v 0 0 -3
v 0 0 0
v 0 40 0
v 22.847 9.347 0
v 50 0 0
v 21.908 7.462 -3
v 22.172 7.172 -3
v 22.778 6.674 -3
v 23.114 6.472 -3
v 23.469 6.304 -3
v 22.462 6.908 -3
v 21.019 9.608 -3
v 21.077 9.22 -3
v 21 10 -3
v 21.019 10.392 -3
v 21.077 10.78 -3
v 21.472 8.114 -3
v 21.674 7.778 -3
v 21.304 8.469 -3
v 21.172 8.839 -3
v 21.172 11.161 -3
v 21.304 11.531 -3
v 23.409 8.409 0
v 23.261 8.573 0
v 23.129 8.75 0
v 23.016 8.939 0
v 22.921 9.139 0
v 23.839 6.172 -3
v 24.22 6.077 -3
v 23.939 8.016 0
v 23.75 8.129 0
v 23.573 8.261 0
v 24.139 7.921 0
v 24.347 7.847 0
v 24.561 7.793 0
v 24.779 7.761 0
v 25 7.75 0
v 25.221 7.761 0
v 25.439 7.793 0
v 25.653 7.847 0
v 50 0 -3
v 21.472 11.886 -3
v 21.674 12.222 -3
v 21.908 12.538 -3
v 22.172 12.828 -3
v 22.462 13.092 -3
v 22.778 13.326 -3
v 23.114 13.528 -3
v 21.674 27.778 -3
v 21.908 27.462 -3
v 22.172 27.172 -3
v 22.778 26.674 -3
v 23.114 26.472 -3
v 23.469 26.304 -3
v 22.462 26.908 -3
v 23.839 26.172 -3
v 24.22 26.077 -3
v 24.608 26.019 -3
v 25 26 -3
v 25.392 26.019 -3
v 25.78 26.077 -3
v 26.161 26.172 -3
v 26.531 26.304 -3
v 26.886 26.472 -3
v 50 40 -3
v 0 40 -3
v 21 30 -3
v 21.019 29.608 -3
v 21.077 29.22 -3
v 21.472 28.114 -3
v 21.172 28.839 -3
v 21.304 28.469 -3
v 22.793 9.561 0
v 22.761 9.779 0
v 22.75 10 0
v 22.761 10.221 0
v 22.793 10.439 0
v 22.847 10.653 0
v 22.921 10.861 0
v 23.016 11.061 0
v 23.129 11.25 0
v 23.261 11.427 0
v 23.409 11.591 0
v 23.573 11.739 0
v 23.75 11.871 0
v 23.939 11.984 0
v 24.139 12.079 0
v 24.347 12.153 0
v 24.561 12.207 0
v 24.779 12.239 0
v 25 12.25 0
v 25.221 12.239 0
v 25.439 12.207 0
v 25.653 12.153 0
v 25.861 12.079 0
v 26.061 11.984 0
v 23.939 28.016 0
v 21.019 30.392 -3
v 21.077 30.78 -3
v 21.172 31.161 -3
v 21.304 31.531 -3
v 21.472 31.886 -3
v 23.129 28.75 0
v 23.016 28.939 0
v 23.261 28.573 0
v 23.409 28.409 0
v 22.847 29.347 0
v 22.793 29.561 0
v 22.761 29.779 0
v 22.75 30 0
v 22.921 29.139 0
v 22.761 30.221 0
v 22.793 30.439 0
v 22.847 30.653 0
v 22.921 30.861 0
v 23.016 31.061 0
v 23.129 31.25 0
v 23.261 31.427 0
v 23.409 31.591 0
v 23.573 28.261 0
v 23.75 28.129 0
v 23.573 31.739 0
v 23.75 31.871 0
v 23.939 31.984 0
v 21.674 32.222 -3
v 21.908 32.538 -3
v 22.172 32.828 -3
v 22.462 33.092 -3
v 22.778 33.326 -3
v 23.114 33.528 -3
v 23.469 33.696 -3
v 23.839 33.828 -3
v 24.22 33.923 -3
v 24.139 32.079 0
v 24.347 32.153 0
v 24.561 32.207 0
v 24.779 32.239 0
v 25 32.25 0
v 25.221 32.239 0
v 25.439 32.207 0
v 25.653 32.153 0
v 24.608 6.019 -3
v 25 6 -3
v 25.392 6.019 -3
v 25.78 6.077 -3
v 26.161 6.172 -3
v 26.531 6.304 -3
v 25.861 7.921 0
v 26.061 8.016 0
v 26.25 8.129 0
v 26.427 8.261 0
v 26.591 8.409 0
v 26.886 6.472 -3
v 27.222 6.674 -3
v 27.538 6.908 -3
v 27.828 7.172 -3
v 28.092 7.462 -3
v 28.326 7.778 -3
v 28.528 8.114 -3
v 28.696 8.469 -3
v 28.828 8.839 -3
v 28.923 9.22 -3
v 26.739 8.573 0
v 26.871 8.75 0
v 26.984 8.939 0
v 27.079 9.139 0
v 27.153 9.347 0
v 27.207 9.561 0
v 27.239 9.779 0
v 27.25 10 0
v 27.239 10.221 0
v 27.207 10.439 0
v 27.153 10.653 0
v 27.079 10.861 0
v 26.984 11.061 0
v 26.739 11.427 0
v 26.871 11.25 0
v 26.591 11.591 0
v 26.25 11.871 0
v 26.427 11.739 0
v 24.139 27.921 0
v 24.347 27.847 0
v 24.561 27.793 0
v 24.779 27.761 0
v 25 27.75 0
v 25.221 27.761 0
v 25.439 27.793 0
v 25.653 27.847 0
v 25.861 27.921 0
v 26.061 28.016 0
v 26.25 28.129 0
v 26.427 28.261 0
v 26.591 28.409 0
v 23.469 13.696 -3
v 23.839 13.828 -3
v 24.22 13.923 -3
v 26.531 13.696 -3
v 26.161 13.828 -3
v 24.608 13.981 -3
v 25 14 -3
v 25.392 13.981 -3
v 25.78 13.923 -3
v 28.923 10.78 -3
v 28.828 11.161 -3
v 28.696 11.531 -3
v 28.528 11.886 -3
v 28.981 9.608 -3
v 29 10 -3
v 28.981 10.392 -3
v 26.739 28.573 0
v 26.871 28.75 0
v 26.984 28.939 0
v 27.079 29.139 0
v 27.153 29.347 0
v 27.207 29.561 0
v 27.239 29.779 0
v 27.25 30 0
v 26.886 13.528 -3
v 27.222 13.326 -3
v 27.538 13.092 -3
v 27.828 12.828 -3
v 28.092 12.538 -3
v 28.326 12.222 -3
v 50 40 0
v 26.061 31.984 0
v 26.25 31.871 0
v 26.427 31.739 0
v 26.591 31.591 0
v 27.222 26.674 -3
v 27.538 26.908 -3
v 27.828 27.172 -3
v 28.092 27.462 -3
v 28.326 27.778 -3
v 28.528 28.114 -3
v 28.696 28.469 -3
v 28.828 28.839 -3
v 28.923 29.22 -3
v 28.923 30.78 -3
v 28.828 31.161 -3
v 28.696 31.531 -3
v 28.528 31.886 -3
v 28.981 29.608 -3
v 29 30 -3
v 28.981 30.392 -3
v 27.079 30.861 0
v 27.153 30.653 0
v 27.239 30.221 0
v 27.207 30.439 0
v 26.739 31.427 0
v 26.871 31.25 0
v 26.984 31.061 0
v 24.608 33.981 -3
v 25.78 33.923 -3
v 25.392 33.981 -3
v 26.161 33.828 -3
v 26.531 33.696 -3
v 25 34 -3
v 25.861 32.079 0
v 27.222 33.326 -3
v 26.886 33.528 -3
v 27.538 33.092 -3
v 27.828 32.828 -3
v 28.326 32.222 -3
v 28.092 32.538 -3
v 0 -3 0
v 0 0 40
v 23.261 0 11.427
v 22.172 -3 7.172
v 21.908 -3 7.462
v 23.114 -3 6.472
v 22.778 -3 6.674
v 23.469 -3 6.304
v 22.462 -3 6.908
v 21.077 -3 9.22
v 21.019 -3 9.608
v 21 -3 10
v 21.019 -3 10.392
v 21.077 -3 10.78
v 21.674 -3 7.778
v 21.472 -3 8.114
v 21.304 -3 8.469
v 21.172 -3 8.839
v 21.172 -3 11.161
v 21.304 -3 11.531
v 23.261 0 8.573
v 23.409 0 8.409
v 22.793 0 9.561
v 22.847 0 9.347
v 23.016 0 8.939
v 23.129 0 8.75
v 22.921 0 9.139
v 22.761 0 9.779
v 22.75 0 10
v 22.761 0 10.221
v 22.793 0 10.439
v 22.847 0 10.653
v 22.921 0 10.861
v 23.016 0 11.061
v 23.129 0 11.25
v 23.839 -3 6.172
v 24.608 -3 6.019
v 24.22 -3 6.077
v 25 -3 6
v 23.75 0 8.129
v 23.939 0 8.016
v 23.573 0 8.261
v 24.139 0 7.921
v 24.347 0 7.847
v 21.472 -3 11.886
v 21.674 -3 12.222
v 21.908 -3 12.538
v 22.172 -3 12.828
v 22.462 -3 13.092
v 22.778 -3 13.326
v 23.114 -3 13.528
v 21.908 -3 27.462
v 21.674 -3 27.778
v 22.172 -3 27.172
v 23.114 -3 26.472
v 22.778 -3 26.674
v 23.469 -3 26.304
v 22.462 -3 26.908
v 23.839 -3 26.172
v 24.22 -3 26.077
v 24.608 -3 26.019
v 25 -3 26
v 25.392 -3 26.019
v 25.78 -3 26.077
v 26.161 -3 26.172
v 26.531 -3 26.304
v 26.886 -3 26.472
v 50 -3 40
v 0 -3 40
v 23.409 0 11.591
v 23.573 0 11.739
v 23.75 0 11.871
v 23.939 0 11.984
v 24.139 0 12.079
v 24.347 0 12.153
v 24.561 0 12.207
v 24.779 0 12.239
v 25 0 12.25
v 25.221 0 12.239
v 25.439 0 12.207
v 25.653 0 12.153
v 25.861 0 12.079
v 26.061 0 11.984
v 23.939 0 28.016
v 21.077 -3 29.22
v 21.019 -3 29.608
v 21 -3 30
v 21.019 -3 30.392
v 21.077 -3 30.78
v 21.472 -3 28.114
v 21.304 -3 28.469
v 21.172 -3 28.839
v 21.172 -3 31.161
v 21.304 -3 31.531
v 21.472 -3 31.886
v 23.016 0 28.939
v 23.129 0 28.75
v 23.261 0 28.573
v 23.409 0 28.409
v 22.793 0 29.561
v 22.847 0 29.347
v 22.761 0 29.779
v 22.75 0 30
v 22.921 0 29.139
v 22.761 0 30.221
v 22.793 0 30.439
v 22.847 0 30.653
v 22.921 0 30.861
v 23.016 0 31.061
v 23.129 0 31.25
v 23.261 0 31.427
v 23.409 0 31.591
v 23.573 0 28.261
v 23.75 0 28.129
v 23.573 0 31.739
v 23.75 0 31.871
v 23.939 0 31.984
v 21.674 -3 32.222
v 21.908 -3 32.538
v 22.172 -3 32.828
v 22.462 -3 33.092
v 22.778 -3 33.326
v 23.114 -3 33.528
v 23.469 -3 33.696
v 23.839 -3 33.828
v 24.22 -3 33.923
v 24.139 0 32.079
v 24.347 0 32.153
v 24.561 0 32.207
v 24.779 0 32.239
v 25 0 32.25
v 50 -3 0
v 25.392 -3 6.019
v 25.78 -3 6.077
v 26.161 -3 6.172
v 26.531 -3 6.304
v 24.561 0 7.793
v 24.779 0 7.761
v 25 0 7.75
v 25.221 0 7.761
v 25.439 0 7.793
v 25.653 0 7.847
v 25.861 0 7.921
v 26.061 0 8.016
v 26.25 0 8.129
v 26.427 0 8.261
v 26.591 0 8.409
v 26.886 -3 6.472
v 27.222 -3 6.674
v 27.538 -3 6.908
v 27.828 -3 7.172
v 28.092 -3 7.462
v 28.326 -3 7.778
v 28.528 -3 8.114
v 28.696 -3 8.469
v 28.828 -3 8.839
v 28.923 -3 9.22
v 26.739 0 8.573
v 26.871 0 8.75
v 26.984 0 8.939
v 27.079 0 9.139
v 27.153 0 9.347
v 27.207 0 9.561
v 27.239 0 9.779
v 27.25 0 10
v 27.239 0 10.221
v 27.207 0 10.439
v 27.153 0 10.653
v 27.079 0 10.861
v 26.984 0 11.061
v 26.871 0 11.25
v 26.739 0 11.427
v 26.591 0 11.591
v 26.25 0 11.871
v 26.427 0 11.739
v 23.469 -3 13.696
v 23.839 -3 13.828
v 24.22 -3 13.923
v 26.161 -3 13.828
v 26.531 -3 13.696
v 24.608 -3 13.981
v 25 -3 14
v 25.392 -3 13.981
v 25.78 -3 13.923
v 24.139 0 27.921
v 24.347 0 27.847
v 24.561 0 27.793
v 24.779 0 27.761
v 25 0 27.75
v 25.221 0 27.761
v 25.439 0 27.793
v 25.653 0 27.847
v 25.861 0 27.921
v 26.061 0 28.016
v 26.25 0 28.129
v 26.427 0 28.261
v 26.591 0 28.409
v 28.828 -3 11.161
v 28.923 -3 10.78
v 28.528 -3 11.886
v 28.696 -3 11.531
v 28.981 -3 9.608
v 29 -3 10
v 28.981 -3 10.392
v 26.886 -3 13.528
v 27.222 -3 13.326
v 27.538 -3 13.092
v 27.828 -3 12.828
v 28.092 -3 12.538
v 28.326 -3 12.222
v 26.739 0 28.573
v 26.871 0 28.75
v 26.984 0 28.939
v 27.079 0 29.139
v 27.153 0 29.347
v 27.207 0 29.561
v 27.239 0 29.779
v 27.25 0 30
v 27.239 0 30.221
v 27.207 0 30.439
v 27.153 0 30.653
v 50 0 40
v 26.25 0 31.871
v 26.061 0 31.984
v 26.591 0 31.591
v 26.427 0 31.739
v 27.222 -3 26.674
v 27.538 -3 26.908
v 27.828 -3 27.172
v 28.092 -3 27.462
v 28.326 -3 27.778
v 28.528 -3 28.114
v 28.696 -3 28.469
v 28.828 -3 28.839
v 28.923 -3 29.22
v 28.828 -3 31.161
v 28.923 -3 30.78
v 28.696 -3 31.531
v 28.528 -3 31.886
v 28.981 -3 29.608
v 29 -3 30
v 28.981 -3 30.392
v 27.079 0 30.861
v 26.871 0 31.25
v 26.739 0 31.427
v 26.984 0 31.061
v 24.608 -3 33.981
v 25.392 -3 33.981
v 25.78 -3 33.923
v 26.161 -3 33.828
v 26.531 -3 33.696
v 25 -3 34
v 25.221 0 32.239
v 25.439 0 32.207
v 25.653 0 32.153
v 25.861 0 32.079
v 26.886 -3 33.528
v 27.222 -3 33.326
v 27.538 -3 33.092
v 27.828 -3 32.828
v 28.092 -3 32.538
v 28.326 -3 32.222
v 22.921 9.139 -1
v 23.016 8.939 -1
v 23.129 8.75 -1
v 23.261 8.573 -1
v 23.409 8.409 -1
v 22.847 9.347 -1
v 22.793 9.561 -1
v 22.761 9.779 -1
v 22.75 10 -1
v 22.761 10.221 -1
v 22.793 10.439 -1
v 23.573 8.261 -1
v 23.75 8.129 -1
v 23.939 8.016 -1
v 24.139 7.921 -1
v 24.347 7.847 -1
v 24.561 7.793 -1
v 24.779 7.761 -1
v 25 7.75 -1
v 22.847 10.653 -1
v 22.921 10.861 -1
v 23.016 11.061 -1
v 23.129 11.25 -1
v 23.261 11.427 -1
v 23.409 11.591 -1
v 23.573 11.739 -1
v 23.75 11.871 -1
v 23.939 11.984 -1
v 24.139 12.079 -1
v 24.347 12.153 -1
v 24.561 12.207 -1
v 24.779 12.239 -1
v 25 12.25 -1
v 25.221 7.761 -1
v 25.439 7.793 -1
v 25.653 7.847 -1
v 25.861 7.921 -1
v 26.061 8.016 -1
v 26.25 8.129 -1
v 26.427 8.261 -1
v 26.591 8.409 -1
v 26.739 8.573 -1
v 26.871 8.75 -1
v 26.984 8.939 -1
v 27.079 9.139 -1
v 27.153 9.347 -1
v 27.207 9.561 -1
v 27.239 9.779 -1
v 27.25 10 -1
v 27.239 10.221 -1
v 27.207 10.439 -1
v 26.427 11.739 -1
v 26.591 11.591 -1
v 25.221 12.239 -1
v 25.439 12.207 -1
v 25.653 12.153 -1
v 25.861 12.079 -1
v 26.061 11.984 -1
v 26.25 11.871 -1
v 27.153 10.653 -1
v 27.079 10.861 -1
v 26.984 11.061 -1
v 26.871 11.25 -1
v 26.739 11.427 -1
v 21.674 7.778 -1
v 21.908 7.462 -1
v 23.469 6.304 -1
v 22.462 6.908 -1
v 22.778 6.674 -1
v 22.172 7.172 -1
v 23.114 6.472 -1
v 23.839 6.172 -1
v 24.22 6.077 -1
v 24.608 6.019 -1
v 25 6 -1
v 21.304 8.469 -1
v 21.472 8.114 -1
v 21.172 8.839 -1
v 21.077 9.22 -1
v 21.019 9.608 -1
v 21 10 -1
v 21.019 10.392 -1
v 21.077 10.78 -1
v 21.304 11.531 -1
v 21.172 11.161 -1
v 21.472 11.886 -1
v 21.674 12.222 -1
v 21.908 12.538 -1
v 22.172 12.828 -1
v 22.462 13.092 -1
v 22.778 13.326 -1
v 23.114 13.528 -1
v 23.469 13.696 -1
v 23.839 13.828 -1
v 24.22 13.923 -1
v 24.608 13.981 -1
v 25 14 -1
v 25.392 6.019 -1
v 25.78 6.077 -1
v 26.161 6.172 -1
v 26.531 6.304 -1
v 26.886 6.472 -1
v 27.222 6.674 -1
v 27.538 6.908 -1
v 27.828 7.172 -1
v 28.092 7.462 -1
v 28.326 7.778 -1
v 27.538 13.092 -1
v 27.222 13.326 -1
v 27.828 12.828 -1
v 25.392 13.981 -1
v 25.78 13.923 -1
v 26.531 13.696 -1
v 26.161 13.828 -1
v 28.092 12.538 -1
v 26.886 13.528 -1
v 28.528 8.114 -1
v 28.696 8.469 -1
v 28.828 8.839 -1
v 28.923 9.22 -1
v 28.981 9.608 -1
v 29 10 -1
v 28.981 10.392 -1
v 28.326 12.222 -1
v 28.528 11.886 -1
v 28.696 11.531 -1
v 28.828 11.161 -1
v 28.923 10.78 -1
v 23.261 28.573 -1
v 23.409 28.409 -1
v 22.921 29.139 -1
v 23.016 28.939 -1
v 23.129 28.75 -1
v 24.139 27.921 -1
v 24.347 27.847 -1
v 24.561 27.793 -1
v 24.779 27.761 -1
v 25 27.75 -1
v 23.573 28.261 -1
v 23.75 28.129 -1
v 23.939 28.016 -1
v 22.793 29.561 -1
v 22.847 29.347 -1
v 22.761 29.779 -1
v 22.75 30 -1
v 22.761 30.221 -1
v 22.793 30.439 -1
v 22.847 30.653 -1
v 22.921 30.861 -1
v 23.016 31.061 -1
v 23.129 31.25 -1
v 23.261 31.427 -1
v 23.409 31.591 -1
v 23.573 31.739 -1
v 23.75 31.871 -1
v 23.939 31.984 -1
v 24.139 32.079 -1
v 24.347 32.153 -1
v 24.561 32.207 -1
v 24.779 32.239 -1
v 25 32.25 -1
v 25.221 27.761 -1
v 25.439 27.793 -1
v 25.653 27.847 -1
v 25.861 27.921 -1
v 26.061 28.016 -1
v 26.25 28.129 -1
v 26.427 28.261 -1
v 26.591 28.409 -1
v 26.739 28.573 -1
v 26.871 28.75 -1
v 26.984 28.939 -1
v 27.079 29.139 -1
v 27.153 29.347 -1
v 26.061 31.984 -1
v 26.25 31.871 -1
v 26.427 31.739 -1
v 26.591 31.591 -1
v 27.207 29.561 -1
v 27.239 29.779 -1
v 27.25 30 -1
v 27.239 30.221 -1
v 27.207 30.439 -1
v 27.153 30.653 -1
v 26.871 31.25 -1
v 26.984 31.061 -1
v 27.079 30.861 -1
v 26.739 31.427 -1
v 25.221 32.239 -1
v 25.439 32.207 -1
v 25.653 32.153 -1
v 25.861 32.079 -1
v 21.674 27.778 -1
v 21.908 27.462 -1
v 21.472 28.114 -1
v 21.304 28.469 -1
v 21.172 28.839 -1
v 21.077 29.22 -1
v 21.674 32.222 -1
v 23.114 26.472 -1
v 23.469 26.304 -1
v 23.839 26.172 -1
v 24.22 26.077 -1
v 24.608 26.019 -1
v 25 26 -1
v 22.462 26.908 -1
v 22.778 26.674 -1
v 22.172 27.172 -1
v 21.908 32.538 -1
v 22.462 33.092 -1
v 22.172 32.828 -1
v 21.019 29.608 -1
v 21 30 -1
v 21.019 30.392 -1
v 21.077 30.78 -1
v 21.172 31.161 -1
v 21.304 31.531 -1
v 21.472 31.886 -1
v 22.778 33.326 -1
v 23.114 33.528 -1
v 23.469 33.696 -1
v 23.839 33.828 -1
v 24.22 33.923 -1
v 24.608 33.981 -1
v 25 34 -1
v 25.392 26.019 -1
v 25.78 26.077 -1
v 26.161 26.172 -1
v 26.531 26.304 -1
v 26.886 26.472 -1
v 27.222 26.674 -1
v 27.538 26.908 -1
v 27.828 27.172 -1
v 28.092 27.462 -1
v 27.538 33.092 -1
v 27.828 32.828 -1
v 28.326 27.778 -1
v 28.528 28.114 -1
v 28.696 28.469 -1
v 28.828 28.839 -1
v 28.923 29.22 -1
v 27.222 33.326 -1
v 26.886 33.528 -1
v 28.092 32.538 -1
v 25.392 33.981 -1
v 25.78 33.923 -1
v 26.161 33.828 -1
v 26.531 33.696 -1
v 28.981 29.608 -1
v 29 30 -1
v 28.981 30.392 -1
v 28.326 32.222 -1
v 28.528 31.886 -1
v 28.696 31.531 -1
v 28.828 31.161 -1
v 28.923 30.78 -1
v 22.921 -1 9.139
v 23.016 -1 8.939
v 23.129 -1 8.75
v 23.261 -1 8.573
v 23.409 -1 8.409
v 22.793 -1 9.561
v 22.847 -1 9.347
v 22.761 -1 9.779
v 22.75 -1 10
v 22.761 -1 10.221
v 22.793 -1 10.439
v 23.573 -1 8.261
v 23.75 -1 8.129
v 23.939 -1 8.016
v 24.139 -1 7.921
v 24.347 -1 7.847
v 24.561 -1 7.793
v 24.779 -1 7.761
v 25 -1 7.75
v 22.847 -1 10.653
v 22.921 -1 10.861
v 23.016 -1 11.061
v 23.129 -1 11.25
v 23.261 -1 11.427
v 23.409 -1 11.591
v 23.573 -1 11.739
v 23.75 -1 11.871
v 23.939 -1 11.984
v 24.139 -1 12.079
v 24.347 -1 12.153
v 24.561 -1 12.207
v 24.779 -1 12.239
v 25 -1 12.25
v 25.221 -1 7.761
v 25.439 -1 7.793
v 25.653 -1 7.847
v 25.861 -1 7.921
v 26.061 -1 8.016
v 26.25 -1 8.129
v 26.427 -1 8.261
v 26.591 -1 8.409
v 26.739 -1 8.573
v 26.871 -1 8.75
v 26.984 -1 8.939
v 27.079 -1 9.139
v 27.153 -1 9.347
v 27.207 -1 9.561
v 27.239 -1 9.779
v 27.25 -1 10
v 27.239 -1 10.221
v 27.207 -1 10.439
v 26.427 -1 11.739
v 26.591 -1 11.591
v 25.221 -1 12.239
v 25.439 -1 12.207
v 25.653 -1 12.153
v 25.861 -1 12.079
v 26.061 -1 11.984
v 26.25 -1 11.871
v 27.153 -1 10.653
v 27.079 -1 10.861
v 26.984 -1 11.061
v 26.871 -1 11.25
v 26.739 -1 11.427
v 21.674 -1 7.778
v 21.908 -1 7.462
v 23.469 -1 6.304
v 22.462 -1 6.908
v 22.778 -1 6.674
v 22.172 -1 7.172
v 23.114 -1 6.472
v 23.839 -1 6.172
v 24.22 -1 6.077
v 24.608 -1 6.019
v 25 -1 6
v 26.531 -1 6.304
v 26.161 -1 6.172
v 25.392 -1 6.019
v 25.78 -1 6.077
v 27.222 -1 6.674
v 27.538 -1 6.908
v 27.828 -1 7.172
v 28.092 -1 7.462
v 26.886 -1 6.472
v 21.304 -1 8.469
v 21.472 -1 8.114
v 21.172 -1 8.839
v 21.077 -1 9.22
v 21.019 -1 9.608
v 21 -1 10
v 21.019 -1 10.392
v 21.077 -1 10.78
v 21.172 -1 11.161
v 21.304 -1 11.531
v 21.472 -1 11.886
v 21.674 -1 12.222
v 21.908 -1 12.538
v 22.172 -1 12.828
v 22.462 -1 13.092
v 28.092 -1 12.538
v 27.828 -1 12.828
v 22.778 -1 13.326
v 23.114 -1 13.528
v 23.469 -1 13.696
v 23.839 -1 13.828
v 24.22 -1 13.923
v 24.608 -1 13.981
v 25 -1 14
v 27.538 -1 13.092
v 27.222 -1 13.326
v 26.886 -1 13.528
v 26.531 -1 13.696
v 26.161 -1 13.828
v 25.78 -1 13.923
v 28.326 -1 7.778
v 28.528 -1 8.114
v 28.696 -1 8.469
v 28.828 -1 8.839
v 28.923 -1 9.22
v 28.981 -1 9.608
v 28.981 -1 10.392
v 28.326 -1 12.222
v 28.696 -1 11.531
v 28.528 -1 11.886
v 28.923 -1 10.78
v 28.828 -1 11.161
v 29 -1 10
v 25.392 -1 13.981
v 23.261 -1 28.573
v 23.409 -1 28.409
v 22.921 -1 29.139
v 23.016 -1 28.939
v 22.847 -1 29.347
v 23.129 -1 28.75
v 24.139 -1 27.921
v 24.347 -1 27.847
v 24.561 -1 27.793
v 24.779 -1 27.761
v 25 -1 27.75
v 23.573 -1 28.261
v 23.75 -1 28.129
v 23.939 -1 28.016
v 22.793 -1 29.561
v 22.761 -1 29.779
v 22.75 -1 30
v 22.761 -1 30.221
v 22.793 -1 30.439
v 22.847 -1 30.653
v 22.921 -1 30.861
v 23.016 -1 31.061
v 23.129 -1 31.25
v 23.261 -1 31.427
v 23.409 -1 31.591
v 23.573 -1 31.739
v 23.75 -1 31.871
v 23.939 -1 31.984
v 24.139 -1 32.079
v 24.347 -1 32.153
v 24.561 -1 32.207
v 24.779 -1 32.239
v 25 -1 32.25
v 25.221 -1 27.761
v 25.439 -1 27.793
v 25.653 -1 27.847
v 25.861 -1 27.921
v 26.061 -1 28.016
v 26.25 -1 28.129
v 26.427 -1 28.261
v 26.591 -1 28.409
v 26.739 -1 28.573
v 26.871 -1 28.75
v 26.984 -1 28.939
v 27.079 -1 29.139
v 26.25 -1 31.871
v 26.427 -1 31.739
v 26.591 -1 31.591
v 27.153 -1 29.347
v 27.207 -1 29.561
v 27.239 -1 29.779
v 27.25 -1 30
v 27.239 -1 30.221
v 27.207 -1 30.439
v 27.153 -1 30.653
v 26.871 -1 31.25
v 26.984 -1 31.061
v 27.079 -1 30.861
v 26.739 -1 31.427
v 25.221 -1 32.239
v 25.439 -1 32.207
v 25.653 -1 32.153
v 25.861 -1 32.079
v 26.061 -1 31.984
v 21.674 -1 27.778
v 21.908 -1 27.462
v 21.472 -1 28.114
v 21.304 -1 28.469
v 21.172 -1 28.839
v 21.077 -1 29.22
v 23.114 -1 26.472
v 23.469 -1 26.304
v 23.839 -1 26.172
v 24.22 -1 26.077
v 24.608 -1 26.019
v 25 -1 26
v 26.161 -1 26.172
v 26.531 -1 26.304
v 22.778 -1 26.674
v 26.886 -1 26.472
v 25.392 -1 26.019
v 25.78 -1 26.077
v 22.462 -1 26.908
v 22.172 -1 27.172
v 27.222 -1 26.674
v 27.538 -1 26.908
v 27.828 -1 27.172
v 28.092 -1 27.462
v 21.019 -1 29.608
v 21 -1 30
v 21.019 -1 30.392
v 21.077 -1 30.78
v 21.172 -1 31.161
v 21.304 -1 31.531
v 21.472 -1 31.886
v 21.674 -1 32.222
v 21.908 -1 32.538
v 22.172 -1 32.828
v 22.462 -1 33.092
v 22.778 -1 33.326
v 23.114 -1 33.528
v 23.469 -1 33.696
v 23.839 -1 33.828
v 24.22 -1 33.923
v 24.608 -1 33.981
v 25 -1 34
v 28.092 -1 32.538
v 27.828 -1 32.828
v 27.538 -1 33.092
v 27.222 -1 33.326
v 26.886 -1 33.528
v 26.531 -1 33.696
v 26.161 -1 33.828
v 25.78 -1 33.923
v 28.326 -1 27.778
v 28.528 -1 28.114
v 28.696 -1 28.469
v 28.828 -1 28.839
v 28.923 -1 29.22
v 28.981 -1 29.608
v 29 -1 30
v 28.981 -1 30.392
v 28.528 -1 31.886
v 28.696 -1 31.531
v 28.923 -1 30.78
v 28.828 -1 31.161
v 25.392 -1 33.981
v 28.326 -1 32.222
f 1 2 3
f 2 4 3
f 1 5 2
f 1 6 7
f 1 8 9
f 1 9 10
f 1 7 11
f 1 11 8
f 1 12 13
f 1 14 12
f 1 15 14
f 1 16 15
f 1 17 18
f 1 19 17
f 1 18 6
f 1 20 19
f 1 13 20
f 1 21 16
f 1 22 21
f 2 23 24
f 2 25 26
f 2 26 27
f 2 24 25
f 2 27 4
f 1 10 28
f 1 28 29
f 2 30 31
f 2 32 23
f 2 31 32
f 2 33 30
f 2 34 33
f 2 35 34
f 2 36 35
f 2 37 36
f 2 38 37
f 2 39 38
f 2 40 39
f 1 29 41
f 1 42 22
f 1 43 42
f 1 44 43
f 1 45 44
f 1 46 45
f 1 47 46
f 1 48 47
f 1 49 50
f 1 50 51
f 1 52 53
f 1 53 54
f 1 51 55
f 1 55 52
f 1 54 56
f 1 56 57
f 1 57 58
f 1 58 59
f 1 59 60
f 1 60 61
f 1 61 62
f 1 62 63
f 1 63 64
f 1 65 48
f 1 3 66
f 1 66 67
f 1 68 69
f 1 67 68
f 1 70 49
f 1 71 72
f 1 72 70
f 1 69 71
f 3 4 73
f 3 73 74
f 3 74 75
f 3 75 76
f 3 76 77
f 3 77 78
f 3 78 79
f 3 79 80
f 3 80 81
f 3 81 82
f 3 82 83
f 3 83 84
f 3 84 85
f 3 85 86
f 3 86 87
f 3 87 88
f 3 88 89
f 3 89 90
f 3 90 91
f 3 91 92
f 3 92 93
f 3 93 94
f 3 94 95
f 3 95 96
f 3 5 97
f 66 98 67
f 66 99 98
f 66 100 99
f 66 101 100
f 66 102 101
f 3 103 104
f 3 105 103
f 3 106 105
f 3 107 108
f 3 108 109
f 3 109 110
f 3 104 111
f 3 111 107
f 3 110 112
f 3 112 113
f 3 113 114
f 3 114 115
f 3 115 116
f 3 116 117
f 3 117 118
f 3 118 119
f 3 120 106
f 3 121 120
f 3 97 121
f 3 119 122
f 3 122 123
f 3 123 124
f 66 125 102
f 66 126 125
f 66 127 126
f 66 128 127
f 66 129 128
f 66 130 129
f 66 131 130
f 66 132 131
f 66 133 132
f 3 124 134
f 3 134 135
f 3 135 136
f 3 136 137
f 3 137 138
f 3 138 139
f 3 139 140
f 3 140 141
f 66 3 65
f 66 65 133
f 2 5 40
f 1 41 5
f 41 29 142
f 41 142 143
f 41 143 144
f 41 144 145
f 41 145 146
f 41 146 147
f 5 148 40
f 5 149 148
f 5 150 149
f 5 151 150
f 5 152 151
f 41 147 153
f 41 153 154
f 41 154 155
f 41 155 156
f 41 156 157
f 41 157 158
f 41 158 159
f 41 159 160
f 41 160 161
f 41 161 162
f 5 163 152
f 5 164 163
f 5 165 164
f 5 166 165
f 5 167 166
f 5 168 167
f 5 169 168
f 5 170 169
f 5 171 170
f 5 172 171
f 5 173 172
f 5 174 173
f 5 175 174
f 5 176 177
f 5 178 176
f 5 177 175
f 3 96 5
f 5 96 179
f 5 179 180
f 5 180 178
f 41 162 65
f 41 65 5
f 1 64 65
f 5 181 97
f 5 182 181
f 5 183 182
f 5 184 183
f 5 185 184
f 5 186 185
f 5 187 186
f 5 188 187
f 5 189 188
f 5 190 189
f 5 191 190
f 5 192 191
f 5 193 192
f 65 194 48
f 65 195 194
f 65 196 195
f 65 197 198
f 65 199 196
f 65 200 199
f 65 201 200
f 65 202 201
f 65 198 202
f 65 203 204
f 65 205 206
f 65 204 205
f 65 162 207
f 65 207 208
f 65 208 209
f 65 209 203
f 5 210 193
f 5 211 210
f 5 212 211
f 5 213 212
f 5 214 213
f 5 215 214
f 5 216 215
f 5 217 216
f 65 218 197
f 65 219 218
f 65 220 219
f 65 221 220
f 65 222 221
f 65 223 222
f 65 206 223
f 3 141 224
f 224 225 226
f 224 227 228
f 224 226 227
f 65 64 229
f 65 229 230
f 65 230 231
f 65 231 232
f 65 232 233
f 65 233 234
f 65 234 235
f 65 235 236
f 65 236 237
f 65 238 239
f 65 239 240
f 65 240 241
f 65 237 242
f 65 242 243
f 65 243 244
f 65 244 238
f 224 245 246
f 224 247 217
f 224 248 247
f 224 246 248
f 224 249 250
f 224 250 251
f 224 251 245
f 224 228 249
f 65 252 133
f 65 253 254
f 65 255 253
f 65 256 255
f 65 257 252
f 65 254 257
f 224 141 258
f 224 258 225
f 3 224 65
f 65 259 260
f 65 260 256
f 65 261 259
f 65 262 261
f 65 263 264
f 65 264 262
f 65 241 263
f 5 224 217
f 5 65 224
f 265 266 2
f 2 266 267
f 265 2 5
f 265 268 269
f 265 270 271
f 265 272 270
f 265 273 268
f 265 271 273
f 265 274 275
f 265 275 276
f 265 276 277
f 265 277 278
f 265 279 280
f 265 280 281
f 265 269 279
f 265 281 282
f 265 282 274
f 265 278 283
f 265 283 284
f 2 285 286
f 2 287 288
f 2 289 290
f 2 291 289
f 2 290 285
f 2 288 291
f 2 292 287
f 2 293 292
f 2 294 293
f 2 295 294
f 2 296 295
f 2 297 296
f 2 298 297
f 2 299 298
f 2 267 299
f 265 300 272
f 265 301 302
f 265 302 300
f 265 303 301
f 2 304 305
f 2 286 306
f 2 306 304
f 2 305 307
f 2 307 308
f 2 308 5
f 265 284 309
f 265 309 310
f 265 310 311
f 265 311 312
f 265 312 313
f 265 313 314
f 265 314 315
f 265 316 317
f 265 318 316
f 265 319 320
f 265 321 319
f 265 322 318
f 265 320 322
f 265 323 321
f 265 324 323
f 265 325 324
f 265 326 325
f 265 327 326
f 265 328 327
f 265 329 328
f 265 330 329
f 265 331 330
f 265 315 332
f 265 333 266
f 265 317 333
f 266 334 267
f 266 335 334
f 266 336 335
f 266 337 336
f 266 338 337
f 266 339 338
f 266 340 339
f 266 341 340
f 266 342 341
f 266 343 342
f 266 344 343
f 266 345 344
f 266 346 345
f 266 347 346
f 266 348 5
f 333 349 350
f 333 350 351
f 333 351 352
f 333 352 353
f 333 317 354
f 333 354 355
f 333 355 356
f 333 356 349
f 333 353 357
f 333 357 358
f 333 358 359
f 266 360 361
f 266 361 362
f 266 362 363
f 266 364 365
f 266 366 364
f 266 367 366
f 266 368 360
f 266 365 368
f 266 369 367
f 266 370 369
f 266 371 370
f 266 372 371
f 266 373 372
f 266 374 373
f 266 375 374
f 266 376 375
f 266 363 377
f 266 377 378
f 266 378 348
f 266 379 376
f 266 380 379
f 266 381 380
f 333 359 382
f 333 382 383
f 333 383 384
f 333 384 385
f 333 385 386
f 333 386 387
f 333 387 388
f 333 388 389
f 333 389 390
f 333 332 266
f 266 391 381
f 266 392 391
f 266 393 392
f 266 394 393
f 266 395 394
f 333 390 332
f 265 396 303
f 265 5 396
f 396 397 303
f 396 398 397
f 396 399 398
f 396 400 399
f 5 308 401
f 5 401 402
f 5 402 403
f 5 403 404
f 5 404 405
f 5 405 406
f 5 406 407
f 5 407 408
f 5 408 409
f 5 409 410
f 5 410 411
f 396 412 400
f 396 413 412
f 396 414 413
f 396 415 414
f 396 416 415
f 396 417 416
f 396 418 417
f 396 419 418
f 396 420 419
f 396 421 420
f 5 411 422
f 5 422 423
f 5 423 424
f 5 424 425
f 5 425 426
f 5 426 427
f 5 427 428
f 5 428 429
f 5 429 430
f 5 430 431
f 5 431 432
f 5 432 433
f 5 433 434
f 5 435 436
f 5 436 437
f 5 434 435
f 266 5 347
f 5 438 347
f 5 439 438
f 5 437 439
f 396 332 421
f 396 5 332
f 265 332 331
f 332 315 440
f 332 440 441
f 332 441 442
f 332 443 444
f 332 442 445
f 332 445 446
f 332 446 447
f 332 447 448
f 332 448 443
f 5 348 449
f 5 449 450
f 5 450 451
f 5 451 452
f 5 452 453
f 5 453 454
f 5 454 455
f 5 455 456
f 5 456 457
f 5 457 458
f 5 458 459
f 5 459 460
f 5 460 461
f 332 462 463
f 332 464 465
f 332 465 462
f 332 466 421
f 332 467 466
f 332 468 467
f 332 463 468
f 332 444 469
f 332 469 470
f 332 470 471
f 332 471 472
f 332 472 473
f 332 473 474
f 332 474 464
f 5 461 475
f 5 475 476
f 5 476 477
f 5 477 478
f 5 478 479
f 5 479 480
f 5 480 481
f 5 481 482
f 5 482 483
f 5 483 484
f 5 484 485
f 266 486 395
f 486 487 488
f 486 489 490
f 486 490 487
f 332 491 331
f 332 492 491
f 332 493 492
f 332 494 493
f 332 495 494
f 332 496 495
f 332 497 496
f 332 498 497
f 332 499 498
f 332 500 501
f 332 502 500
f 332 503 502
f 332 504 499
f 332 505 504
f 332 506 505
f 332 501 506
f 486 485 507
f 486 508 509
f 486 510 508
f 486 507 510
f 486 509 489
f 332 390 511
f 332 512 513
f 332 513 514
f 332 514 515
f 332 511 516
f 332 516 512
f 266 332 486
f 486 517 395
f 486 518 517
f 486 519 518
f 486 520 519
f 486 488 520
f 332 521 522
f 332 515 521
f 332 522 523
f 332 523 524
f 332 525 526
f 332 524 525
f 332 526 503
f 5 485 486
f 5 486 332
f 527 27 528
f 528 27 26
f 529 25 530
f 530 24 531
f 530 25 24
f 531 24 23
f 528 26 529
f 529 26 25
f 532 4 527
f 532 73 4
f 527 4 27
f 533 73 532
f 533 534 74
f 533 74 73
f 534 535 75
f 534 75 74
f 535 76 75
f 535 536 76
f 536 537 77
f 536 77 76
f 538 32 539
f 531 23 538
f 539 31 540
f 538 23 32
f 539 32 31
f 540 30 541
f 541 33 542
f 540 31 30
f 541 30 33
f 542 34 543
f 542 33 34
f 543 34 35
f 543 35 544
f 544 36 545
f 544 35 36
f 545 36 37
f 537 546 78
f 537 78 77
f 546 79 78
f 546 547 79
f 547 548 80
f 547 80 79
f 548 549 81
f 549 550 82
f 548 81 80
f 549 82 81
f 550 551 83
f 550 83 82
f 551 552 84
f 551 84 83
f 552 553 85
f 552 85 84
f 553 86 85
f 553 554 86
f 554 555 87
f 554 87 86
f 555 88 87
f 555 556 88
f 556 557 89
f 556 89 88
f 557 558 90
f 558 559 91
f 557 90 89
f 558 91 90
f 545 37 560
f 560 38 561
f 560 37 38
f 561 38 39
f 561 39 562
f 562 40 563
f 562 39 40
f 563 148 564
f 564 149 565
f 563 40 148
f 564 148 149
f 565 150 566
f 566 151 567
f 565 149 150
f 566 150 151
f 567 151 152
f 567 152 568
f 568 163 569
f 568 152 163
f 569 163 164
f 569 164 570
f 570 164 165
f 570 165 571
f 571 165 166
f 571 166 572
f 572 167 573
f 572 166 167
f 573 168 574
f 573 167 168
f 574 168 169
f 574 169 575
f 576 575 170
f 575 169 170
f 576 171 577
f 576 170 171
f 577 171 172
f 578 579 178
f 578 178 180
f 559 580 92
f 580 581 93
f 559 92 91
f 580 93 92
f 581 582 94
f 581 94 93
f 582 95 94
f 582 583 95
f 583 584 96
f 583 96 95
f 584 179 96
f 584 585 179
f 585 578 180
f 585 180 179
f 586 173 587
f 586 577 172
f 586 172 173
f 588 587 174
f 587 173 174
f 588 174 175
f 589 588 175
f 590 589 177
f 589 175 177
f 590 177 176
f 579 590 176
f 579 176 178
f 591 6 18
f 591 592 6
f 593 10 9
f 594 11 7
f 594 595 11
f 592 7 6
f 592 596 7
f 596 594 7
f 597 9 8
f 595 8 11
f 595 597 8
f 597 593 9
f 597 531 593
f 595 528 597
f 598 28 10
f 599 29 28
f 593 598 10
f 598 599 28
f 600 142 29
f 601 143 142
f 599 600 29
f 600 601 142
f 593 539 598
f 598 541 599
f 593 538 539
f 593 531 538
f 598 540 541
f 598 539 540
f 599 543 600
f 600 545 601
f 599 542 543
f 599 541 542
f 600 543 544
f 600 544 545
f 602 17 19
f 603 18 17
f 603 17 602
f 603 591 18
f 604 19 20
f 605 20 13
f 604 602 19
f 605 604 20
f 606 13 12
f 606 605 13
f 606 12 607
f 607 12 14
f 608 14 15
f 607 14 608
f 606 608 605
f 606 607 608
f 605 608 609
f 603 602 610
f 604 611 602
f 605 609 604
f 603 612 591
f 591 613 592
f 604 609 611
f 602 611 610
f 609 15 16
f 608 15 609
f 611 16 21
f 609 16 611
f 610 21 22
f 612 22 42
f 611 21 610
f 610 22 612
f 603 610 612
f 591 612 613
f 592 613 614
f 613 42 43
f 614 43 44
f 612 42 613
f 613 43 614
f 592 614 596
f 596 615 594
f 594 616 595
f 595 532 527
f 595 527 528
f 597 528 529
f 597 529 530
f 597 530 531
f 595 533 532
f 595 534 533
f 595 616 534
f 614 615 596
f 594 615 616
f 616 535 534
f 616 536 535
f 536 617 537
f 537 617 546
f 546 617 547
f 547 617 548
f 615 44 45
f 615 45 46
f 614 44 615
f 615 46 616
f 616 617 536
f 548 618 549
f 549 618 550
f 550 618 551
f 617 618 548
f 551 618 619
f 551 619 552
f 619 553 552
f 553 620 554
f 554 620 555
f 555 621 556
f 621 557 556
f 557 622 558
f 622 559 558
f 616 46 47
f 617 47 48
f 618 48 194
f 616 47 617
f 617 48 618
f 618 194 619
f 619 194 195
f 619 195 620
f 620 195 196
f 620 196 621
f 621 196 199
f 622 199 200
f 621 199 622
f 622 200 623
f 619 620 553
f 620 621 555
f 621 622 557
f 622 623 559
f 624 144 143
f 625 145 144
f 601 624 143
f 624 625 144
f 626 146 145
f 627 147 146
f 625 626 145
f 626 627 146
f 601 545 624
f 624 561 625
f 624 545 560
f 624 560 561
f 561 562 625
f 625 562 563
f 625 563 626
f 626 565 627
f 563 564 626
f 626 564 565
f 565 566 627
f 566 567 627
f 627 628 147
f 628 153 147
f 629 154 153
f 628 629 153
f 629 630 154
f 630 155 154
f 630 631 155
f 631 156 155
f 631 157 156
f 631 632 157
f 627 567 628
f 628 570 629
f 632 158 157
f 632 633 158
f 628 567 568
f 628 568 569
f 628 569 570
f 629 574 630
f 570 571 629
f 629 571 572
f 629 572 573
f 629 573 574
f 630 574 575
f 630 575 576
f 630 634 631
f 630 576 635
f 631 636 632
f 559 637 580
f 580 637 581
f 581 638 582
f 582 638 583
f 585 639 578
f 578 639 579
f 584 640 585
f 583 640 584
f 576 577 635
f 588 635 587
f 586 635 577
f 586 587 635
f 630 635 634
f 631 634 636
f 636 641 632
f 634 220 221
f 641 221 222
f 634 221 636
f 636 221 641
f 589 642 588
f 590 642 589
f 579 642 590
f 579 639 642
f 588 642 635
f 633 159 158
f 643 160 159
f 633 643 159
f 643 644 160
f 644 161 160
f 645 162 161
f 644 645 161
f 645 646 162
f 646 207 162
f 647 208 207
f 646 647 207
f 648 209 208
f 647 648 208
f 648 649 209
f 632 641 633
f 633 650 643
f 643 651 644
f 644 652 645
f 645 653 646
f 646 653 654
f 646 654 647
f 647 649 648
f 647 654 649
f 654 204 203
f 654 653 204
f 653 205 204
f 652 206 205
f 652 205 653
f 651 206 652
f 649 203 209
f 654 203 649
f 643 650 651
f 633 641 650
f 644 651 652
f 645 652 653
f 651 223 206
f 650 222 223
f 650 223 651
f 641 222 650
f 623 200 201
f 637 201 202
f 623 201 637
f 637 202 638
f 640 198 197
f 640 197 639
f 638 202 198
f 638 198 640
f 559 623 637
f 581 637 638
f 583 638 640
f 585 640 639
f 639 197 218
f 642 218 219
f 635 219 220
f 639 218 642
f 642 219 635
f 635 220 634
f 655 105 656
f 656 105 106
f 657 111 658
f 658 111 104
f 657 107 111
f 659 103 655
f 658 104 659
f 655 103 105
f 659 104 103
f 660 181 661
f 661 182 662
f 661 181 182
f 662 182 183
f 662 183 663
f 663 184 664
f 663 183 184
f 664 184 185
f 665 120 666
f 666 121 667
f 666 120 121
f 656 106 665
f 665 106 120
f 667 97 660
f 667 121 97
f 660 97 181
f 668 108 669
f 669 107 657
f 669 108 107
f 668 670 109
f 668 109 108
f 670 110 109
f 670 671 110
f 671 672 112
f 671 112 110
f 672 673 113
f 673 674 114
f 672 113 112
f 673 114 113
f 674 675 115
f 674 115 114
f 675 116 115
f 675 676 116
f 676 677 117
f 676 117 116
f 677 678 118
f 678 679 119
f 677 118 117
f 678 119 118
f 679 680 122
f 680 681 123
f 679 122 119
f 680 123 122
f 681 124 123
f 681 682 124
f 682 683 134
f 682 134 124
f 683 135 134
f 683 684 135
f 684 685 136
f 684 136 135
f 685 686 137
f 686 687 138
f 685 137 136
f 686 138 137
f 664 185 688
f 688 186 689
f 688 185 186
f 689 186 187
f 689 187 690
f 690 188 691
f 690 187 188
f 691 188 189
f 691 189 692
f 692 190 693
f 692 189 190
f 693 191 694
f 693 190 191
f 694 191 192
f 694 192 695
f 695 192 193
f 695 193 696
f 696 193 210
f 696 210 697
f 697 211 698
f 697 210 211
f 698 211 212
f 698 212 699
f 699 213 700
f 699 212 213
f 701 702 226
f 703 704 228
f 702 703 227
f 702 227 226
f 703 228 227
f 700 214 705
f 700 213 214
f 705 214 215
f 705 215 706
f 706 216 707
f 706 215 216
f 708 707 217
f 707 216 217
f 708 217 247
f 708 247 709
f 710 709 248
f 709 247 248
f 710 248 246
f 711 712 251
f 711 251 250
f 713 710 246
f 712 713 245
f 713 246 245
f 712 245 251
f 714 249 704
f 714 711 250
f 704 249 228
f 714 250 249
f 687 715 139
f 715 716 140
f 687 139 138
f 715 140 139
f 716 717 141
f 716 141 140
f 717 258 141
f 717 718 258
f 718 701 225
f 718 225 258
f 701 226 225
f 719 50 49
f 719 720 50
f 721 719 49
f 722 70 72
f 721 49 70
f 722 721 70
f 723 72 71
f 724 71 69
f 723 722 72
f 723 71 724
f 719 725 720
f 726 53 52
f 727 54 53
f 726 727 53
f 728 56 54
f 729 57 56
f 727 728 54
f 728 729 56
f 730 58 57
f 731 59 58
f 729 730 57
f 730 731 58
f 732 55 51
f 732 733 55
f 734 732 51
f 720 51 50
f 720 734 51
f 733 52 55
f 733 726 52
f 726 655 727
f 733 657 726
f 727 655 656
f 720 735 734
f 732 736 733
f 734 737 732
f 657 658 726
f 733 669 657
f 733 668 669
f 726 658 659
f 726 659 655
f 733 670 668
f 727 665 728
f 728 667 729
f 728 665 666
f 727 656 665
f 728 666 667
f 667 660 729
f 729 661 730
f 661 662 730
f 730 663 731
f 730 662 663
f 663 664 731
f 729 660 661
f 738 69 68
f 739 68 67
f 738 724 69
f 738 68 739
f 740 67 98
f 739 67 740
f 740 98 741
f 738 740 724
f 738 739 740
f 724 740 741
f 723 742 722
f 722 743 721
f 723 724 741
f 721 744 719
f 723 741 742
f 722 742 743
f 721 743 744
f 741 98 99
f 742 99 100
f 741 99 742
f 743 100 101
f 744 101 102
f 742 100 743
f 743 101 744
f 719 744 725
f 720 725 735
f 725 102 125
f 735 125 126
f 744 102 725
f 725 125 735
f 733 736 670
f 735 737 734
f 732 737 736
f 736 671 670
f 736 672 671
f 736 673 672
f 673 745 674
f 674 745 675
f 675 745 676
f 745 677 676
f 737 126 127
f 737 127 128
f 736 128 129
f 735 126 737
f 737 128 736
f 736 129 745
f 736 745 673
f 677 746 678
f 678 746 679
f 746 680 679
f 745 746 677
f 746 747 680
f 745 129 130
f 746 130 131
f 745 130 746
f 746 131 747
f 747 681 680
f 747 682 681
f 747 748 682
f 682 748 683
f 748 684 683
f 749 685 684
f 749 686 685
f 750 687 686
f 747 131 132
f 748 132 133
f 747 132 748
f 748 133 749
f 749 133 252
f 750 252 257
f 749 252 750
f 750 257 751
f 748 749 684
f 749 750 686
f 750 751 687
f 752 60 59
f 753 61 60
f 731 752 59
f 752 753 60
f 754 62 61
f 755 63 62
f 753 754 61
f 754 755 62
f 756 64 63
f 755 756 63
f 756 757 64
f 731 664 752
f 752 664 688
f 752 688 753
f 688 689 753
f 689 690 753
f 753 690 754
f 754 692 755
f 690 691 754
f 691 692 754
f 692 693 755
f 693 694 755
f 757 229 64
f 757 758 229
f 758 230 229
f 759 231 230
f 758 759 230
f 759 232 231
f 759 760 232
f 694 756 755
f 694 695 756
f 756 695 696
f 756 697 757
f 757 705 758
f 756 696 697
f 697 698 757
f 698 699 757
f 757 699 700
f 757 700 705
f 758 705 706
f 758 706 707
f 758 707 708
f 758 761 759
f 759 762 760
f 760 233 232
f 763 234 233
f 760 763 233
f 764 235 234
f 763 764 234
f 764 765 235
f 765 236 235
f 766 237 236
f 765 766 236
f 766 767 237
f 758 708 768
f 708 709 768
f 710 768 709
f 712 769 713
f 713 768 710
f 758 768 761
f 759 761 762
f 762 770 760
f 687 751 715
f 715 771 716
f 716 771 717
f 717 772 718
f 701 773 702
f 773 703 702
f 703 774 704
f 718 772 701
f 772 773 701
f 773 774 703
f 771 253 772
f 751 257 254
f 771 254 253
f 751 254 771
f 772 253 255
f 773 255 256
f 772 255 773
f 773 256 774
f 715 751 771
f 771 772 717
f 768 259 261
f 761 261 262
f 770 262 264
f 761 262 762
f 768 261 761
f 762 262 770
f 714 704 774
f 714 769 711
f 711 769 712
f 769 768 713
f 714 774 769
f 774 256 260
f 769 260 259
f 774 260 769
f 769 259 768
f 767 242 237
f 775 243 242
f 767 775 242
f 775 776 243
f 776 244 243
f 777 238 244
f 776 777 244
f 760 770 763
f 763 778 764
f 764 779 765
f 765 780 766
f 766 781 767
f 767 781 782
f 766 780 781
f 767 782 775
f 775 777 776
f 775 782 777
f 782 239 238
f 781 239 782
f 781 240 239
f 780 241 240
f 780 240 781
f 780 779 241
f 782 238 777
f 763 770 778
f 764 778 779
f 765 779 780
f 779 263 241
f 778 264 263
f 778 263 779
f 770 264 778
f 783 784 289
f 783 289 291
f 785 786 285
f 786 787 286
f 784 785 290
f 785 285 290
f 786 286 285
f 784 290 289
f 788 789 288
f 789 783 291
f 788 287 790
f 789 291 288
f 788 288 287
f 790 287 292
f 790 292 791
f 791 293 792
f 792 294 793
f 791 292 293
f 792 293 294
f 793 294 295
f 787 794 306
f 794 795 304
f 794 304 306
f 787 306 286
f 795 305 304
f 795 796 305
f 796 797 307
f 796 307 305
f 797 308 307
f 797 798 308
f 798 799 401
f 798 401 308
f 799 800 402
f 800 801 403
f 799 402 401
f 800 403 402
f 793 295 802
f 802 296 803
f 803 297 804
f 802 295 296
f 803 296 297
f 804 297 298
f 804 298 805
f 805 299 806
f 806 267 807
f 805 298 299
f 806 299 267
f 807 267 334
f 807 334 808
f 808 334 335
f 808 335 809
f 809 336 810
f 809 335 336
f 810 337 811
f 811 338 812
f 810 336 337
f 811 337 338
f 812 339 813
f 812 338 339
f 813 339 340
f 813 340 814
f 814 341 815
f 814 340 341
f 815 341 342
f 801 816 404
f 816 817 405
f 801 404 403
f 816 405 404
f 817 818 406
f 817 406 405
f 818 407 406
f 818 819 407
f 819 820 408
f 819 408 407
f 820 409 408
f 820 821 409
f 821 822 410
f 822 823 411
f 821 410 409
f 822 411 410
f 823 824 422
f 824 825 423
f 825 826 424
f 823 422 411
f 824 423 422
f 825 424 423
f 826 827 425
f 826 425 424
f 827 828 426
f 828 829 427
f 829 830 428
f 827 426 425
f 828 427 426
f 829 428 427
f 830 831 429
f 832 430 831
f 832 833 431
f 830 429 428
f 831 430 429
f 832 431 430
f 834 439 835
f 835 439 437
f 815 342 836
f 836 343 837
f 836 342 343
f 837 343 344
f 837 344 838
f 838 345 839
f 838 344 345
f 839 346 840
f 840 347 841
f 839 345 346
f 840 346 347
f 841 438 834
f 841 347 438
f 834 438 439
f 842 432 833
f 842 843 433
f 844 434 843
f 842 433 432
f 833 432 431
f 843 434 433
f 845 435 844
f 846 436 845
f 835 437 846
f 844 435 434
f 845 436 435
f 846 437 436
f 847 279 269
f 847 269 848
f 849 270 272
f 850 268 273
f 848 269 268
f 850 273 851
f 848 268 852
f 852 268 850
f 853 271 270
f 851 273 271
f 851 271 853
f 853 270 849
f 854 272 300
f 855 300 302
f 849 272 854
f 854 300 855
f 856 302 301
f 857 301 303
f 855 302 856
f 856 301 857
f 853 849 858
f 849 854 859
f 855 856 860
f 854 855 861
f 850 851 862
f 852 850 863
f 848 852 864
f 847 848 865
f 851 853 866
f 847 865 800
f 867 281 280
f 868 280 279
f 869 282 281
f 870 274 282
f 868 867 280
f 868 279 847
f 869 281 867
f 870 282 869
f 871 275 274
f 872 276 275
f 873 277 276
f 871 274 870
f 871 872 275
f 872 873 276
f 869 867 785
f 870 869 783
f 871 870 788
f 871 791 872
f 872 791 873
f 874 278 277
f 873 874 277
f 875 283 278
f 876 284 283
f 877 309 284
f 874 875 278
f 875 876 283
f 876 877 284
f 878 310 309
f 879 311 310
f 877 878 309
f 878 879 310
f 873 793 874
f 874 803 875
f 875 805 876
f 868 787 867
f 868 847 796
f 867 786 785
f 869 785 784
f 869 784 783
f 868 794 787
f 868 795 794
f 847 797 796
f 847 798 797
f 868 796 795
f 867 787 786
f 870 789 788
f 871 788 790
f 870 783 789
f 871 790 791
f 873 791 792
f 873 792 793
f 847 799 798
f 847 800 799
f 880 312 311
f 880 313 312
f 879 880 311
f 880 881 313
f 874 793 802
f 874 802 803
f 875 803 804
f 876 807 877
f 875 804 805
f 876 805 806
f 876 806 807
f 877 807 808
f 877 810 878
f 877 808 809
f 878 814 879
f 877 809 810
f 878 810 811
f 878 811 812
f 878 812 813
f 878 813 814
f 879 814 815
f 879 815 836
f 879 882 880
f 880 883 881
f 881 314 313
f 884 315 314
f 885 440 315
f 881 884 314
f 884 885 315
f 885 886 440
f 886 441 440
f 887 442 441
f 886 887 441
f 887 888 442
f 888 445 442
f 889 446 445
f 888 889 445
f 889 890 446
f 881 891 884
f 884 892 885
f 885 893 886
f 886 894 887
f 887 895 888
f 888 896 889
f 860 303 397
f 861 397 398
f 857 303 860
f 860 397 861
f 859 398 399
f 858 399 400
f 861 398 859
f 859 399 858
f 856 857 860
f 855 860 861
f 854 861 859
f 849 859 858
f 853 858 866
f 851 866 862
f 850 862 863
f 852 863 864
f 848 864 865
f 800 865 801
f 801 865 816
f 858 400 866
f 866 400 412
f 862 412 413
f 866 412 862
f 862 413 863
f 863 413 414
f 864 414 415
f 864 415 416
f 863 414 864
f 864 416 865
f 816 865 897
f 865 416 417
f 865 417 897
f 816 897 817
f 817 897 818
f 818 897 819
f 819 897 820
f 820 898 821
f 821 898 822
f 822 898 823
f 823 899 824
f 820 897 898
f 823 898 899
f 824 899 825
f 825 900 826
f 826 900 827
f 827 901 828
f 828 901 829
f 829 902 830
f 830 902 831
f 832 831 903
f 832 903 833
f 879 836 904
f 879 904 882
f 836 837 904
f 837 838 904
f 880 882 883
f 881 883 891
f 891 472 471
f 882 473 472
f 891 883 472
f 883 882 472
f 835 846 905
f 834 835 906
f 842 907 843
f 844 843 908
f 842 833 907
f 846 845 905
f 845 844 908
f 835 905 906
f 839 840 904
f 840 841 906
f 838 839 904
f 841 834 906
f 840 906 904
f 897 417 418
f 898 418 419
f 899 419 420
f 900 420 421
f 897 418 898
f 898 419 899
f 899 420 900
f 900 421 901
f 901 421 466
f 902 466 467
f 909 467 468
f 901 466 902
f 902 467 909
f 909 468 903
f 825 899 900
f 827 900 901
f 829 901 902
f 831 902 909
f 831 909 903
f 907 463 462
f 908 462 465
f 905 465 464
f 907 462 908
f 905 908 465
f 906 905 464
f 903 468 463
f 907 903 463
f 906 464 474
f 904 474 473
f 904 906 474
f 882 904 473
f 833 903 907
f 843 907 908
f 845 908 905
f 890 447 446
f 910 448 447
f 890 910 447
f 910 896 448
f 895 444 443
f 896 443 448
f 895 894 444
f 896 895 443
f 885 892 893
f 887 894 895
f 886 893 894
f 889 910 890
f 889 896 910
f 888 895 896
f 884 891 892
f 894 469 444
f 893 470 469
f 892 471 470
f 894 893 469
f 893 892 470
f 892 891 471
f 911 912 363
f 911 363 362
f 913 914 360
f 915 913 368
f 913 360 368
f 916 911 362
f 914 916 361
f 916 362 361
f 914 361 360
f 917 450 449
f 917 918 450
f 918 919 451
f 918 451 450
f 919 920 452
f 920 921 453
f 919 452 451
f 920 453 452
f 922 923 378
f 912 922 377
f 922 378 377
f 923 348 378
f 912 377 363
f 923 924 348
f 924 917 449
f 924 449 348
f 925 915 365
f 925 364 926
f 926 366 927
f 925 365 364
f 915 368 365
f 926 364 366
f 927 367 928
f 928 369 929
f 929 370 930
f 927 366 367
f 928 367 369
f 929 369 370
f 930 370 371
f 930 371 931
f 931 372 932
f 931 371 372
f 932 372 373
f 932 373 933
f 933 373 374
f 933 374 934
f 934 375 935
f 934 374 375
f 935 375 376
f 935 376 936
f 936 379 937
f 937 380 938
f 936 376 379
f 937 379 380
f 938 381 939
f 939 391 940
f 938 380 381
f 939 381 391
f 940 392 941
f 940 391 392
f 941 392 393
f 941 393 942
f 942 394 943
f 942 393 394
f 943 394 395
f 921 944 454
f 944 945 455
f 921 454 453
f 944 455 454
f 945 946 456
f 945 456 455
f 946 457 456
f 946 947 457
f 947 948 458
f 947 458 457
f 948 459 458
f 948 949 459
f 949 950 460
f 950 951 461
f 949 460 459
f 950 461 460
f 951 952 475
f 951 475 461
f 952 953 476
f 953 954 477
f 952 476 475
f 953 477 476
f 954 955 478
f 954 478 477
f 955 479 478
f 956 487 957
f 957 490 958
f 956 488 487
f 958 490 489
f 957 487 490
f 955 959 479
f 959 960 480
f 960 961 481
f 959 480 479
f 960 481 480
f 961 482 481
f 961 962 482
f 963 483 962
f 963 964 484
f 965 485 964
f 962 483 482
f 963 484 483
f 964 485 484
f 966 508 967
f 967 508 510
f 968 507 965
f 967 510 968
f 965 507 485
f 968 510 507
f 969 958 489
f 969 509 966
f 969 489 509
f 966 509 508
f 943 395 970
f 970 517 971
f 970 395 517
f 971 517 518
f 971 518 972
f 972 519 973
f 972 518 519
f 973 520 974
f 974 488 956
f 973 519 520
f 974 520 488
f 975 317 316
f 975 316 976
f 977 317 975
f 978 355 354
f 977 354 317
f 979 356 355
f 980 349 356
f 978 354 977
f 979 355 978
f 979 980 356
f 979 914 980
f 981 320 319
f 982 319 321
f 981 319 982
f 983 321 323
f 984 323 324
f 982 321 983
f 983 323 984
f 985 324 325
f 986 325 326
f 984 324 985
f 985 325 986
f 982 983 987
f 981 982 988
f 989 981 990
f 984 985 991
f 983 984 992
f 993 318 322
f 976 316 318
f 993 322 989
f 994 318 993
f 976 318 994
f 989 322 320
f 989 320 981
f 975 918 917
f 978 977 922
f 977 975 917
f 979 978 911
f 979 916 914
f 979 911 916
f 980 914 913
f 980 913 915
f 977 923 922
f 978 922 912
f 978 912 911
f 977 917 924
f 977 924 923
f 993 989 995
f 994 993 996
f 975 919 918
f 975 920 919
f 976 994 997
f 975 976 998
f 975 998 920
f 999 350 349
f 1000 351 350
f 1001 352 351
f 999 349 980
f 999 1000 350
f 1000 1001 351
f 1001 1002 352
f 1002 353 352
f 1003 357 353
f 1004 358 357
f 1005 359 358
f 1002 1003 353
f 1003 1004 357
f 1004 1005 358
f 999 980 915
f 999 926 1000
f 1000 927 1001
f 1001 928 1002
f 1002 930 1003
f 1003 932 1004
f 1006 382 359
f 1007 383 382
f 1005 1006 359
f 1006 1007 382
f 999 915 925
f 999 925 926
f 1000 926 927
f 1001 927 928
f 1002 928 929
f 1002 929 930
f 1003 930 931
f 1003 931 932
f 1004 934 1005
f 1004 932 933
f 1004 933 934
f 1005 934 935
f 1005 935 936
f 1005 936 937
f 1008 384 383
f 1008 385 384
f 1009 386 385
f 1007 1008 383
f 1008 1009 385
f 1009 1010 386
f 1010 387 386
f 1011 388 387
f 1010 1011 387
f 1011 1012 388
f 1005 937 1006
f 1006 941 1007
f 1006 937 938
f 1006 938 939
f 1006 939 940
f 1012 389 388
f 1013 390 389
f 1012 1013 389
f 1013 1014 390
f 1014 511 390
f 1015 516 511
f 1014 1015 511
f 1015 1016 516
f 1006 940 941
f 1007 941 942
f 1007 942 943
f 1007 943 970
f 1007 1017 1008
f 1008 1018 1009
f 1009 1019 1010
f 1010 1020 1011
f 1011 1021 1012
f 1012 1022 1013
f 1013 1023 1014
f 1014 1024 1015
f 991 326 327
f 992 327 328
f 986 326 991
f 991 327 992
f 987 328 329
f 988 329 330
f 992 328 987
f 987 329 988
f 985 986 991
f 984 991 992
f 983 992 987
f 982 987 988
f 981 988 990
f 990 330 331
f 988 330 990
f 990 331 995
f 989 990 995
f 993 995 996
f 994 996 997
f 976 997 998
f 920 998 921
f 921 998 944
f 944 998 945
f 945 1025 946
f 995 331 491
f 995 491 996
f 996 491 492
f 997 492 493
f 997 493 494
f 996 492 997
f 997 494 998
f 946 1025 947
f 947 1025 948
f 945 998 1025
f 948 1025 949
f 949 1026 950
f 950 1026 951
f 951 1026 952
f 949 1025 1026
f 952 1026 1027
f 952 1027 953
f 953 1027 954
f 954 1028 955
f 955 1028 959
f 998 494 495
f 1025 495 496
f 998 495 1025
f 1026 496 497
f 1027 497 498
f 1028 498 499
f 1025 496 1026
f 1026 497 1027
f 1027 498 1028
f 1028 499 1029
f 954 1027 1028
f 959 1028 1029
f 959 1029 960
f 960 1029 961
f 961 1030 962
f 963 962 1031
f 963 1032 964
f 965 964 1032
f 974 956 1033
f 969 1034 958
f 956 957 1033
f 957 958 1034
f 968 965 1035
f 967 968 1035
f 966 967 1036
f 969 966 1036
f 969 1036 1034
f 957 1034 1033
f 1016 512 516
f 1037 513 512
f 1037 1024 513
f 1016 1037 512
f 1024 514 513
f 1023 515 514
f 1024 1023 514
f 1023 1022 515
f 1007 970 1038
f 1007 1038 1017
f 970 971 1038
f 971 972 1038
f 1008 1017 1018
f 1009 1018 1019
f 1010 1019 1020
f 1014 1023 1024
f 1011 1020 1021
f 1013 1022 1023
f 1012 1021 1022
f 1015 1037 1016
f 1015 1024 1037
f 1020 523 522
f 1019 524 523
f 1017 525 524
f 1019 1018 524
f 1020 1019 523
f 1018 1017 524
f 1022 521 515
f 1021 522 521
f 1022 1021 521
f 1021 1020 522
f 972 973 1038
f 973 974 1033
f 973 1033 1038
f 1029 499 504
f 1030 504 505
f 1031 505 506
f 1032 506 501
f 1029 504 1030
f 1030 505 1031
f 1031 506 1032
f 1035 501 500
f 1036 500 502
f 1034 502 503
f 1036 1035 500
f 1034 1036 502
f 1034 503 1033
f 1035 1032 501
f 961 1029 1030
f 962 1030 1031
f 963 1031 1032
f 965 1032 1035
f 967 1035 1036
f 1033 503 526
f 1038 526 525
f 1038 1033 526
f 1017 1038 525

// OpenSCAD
// Parameters
width = 50;
depth = 40;
height = 40;
thickness = 3;

hole_d = 4.5;
cs_d = 8;
cs_depth = 2;

difference() {
    union() {
        // Horizontal flange (+Y direction, thickness in -Z)
        translate([0, 0, -thickness])
            cube([width, depth, thickness], center = false);
        // Vertical flange (+Z direction, thickness in -Y)
        translate([0, -thickness, 0])
            cube([width, thickness, height], center = false);
    }
    // Countersunk holes on horizontal flange
    for (ypos = [10, depth - 10]) {
        translate([width / 2, ypos, -5])
            cylinder(d = hole_d, h = 10, $fn = 64);
        translate([width / 2, ypos, -thickness])
            cylinder(d = cs_d, h = cs_depth, $fn = 64);
    }
    // Countersunk holes on vertical flange
    for (zpos = [10, height - 10]) {
        translate([width / 2, -5, zpos])
            rotate([-90, 0, 0])
                cylinder(d = hole_d, h = 10, $fn = 64);
        translate([width / 2, -thickness, zpos])
            rotate([-90, 0, 0])
                cylinder(d = cs_d, h = cs_depth, $fn = 64);
    }
}
